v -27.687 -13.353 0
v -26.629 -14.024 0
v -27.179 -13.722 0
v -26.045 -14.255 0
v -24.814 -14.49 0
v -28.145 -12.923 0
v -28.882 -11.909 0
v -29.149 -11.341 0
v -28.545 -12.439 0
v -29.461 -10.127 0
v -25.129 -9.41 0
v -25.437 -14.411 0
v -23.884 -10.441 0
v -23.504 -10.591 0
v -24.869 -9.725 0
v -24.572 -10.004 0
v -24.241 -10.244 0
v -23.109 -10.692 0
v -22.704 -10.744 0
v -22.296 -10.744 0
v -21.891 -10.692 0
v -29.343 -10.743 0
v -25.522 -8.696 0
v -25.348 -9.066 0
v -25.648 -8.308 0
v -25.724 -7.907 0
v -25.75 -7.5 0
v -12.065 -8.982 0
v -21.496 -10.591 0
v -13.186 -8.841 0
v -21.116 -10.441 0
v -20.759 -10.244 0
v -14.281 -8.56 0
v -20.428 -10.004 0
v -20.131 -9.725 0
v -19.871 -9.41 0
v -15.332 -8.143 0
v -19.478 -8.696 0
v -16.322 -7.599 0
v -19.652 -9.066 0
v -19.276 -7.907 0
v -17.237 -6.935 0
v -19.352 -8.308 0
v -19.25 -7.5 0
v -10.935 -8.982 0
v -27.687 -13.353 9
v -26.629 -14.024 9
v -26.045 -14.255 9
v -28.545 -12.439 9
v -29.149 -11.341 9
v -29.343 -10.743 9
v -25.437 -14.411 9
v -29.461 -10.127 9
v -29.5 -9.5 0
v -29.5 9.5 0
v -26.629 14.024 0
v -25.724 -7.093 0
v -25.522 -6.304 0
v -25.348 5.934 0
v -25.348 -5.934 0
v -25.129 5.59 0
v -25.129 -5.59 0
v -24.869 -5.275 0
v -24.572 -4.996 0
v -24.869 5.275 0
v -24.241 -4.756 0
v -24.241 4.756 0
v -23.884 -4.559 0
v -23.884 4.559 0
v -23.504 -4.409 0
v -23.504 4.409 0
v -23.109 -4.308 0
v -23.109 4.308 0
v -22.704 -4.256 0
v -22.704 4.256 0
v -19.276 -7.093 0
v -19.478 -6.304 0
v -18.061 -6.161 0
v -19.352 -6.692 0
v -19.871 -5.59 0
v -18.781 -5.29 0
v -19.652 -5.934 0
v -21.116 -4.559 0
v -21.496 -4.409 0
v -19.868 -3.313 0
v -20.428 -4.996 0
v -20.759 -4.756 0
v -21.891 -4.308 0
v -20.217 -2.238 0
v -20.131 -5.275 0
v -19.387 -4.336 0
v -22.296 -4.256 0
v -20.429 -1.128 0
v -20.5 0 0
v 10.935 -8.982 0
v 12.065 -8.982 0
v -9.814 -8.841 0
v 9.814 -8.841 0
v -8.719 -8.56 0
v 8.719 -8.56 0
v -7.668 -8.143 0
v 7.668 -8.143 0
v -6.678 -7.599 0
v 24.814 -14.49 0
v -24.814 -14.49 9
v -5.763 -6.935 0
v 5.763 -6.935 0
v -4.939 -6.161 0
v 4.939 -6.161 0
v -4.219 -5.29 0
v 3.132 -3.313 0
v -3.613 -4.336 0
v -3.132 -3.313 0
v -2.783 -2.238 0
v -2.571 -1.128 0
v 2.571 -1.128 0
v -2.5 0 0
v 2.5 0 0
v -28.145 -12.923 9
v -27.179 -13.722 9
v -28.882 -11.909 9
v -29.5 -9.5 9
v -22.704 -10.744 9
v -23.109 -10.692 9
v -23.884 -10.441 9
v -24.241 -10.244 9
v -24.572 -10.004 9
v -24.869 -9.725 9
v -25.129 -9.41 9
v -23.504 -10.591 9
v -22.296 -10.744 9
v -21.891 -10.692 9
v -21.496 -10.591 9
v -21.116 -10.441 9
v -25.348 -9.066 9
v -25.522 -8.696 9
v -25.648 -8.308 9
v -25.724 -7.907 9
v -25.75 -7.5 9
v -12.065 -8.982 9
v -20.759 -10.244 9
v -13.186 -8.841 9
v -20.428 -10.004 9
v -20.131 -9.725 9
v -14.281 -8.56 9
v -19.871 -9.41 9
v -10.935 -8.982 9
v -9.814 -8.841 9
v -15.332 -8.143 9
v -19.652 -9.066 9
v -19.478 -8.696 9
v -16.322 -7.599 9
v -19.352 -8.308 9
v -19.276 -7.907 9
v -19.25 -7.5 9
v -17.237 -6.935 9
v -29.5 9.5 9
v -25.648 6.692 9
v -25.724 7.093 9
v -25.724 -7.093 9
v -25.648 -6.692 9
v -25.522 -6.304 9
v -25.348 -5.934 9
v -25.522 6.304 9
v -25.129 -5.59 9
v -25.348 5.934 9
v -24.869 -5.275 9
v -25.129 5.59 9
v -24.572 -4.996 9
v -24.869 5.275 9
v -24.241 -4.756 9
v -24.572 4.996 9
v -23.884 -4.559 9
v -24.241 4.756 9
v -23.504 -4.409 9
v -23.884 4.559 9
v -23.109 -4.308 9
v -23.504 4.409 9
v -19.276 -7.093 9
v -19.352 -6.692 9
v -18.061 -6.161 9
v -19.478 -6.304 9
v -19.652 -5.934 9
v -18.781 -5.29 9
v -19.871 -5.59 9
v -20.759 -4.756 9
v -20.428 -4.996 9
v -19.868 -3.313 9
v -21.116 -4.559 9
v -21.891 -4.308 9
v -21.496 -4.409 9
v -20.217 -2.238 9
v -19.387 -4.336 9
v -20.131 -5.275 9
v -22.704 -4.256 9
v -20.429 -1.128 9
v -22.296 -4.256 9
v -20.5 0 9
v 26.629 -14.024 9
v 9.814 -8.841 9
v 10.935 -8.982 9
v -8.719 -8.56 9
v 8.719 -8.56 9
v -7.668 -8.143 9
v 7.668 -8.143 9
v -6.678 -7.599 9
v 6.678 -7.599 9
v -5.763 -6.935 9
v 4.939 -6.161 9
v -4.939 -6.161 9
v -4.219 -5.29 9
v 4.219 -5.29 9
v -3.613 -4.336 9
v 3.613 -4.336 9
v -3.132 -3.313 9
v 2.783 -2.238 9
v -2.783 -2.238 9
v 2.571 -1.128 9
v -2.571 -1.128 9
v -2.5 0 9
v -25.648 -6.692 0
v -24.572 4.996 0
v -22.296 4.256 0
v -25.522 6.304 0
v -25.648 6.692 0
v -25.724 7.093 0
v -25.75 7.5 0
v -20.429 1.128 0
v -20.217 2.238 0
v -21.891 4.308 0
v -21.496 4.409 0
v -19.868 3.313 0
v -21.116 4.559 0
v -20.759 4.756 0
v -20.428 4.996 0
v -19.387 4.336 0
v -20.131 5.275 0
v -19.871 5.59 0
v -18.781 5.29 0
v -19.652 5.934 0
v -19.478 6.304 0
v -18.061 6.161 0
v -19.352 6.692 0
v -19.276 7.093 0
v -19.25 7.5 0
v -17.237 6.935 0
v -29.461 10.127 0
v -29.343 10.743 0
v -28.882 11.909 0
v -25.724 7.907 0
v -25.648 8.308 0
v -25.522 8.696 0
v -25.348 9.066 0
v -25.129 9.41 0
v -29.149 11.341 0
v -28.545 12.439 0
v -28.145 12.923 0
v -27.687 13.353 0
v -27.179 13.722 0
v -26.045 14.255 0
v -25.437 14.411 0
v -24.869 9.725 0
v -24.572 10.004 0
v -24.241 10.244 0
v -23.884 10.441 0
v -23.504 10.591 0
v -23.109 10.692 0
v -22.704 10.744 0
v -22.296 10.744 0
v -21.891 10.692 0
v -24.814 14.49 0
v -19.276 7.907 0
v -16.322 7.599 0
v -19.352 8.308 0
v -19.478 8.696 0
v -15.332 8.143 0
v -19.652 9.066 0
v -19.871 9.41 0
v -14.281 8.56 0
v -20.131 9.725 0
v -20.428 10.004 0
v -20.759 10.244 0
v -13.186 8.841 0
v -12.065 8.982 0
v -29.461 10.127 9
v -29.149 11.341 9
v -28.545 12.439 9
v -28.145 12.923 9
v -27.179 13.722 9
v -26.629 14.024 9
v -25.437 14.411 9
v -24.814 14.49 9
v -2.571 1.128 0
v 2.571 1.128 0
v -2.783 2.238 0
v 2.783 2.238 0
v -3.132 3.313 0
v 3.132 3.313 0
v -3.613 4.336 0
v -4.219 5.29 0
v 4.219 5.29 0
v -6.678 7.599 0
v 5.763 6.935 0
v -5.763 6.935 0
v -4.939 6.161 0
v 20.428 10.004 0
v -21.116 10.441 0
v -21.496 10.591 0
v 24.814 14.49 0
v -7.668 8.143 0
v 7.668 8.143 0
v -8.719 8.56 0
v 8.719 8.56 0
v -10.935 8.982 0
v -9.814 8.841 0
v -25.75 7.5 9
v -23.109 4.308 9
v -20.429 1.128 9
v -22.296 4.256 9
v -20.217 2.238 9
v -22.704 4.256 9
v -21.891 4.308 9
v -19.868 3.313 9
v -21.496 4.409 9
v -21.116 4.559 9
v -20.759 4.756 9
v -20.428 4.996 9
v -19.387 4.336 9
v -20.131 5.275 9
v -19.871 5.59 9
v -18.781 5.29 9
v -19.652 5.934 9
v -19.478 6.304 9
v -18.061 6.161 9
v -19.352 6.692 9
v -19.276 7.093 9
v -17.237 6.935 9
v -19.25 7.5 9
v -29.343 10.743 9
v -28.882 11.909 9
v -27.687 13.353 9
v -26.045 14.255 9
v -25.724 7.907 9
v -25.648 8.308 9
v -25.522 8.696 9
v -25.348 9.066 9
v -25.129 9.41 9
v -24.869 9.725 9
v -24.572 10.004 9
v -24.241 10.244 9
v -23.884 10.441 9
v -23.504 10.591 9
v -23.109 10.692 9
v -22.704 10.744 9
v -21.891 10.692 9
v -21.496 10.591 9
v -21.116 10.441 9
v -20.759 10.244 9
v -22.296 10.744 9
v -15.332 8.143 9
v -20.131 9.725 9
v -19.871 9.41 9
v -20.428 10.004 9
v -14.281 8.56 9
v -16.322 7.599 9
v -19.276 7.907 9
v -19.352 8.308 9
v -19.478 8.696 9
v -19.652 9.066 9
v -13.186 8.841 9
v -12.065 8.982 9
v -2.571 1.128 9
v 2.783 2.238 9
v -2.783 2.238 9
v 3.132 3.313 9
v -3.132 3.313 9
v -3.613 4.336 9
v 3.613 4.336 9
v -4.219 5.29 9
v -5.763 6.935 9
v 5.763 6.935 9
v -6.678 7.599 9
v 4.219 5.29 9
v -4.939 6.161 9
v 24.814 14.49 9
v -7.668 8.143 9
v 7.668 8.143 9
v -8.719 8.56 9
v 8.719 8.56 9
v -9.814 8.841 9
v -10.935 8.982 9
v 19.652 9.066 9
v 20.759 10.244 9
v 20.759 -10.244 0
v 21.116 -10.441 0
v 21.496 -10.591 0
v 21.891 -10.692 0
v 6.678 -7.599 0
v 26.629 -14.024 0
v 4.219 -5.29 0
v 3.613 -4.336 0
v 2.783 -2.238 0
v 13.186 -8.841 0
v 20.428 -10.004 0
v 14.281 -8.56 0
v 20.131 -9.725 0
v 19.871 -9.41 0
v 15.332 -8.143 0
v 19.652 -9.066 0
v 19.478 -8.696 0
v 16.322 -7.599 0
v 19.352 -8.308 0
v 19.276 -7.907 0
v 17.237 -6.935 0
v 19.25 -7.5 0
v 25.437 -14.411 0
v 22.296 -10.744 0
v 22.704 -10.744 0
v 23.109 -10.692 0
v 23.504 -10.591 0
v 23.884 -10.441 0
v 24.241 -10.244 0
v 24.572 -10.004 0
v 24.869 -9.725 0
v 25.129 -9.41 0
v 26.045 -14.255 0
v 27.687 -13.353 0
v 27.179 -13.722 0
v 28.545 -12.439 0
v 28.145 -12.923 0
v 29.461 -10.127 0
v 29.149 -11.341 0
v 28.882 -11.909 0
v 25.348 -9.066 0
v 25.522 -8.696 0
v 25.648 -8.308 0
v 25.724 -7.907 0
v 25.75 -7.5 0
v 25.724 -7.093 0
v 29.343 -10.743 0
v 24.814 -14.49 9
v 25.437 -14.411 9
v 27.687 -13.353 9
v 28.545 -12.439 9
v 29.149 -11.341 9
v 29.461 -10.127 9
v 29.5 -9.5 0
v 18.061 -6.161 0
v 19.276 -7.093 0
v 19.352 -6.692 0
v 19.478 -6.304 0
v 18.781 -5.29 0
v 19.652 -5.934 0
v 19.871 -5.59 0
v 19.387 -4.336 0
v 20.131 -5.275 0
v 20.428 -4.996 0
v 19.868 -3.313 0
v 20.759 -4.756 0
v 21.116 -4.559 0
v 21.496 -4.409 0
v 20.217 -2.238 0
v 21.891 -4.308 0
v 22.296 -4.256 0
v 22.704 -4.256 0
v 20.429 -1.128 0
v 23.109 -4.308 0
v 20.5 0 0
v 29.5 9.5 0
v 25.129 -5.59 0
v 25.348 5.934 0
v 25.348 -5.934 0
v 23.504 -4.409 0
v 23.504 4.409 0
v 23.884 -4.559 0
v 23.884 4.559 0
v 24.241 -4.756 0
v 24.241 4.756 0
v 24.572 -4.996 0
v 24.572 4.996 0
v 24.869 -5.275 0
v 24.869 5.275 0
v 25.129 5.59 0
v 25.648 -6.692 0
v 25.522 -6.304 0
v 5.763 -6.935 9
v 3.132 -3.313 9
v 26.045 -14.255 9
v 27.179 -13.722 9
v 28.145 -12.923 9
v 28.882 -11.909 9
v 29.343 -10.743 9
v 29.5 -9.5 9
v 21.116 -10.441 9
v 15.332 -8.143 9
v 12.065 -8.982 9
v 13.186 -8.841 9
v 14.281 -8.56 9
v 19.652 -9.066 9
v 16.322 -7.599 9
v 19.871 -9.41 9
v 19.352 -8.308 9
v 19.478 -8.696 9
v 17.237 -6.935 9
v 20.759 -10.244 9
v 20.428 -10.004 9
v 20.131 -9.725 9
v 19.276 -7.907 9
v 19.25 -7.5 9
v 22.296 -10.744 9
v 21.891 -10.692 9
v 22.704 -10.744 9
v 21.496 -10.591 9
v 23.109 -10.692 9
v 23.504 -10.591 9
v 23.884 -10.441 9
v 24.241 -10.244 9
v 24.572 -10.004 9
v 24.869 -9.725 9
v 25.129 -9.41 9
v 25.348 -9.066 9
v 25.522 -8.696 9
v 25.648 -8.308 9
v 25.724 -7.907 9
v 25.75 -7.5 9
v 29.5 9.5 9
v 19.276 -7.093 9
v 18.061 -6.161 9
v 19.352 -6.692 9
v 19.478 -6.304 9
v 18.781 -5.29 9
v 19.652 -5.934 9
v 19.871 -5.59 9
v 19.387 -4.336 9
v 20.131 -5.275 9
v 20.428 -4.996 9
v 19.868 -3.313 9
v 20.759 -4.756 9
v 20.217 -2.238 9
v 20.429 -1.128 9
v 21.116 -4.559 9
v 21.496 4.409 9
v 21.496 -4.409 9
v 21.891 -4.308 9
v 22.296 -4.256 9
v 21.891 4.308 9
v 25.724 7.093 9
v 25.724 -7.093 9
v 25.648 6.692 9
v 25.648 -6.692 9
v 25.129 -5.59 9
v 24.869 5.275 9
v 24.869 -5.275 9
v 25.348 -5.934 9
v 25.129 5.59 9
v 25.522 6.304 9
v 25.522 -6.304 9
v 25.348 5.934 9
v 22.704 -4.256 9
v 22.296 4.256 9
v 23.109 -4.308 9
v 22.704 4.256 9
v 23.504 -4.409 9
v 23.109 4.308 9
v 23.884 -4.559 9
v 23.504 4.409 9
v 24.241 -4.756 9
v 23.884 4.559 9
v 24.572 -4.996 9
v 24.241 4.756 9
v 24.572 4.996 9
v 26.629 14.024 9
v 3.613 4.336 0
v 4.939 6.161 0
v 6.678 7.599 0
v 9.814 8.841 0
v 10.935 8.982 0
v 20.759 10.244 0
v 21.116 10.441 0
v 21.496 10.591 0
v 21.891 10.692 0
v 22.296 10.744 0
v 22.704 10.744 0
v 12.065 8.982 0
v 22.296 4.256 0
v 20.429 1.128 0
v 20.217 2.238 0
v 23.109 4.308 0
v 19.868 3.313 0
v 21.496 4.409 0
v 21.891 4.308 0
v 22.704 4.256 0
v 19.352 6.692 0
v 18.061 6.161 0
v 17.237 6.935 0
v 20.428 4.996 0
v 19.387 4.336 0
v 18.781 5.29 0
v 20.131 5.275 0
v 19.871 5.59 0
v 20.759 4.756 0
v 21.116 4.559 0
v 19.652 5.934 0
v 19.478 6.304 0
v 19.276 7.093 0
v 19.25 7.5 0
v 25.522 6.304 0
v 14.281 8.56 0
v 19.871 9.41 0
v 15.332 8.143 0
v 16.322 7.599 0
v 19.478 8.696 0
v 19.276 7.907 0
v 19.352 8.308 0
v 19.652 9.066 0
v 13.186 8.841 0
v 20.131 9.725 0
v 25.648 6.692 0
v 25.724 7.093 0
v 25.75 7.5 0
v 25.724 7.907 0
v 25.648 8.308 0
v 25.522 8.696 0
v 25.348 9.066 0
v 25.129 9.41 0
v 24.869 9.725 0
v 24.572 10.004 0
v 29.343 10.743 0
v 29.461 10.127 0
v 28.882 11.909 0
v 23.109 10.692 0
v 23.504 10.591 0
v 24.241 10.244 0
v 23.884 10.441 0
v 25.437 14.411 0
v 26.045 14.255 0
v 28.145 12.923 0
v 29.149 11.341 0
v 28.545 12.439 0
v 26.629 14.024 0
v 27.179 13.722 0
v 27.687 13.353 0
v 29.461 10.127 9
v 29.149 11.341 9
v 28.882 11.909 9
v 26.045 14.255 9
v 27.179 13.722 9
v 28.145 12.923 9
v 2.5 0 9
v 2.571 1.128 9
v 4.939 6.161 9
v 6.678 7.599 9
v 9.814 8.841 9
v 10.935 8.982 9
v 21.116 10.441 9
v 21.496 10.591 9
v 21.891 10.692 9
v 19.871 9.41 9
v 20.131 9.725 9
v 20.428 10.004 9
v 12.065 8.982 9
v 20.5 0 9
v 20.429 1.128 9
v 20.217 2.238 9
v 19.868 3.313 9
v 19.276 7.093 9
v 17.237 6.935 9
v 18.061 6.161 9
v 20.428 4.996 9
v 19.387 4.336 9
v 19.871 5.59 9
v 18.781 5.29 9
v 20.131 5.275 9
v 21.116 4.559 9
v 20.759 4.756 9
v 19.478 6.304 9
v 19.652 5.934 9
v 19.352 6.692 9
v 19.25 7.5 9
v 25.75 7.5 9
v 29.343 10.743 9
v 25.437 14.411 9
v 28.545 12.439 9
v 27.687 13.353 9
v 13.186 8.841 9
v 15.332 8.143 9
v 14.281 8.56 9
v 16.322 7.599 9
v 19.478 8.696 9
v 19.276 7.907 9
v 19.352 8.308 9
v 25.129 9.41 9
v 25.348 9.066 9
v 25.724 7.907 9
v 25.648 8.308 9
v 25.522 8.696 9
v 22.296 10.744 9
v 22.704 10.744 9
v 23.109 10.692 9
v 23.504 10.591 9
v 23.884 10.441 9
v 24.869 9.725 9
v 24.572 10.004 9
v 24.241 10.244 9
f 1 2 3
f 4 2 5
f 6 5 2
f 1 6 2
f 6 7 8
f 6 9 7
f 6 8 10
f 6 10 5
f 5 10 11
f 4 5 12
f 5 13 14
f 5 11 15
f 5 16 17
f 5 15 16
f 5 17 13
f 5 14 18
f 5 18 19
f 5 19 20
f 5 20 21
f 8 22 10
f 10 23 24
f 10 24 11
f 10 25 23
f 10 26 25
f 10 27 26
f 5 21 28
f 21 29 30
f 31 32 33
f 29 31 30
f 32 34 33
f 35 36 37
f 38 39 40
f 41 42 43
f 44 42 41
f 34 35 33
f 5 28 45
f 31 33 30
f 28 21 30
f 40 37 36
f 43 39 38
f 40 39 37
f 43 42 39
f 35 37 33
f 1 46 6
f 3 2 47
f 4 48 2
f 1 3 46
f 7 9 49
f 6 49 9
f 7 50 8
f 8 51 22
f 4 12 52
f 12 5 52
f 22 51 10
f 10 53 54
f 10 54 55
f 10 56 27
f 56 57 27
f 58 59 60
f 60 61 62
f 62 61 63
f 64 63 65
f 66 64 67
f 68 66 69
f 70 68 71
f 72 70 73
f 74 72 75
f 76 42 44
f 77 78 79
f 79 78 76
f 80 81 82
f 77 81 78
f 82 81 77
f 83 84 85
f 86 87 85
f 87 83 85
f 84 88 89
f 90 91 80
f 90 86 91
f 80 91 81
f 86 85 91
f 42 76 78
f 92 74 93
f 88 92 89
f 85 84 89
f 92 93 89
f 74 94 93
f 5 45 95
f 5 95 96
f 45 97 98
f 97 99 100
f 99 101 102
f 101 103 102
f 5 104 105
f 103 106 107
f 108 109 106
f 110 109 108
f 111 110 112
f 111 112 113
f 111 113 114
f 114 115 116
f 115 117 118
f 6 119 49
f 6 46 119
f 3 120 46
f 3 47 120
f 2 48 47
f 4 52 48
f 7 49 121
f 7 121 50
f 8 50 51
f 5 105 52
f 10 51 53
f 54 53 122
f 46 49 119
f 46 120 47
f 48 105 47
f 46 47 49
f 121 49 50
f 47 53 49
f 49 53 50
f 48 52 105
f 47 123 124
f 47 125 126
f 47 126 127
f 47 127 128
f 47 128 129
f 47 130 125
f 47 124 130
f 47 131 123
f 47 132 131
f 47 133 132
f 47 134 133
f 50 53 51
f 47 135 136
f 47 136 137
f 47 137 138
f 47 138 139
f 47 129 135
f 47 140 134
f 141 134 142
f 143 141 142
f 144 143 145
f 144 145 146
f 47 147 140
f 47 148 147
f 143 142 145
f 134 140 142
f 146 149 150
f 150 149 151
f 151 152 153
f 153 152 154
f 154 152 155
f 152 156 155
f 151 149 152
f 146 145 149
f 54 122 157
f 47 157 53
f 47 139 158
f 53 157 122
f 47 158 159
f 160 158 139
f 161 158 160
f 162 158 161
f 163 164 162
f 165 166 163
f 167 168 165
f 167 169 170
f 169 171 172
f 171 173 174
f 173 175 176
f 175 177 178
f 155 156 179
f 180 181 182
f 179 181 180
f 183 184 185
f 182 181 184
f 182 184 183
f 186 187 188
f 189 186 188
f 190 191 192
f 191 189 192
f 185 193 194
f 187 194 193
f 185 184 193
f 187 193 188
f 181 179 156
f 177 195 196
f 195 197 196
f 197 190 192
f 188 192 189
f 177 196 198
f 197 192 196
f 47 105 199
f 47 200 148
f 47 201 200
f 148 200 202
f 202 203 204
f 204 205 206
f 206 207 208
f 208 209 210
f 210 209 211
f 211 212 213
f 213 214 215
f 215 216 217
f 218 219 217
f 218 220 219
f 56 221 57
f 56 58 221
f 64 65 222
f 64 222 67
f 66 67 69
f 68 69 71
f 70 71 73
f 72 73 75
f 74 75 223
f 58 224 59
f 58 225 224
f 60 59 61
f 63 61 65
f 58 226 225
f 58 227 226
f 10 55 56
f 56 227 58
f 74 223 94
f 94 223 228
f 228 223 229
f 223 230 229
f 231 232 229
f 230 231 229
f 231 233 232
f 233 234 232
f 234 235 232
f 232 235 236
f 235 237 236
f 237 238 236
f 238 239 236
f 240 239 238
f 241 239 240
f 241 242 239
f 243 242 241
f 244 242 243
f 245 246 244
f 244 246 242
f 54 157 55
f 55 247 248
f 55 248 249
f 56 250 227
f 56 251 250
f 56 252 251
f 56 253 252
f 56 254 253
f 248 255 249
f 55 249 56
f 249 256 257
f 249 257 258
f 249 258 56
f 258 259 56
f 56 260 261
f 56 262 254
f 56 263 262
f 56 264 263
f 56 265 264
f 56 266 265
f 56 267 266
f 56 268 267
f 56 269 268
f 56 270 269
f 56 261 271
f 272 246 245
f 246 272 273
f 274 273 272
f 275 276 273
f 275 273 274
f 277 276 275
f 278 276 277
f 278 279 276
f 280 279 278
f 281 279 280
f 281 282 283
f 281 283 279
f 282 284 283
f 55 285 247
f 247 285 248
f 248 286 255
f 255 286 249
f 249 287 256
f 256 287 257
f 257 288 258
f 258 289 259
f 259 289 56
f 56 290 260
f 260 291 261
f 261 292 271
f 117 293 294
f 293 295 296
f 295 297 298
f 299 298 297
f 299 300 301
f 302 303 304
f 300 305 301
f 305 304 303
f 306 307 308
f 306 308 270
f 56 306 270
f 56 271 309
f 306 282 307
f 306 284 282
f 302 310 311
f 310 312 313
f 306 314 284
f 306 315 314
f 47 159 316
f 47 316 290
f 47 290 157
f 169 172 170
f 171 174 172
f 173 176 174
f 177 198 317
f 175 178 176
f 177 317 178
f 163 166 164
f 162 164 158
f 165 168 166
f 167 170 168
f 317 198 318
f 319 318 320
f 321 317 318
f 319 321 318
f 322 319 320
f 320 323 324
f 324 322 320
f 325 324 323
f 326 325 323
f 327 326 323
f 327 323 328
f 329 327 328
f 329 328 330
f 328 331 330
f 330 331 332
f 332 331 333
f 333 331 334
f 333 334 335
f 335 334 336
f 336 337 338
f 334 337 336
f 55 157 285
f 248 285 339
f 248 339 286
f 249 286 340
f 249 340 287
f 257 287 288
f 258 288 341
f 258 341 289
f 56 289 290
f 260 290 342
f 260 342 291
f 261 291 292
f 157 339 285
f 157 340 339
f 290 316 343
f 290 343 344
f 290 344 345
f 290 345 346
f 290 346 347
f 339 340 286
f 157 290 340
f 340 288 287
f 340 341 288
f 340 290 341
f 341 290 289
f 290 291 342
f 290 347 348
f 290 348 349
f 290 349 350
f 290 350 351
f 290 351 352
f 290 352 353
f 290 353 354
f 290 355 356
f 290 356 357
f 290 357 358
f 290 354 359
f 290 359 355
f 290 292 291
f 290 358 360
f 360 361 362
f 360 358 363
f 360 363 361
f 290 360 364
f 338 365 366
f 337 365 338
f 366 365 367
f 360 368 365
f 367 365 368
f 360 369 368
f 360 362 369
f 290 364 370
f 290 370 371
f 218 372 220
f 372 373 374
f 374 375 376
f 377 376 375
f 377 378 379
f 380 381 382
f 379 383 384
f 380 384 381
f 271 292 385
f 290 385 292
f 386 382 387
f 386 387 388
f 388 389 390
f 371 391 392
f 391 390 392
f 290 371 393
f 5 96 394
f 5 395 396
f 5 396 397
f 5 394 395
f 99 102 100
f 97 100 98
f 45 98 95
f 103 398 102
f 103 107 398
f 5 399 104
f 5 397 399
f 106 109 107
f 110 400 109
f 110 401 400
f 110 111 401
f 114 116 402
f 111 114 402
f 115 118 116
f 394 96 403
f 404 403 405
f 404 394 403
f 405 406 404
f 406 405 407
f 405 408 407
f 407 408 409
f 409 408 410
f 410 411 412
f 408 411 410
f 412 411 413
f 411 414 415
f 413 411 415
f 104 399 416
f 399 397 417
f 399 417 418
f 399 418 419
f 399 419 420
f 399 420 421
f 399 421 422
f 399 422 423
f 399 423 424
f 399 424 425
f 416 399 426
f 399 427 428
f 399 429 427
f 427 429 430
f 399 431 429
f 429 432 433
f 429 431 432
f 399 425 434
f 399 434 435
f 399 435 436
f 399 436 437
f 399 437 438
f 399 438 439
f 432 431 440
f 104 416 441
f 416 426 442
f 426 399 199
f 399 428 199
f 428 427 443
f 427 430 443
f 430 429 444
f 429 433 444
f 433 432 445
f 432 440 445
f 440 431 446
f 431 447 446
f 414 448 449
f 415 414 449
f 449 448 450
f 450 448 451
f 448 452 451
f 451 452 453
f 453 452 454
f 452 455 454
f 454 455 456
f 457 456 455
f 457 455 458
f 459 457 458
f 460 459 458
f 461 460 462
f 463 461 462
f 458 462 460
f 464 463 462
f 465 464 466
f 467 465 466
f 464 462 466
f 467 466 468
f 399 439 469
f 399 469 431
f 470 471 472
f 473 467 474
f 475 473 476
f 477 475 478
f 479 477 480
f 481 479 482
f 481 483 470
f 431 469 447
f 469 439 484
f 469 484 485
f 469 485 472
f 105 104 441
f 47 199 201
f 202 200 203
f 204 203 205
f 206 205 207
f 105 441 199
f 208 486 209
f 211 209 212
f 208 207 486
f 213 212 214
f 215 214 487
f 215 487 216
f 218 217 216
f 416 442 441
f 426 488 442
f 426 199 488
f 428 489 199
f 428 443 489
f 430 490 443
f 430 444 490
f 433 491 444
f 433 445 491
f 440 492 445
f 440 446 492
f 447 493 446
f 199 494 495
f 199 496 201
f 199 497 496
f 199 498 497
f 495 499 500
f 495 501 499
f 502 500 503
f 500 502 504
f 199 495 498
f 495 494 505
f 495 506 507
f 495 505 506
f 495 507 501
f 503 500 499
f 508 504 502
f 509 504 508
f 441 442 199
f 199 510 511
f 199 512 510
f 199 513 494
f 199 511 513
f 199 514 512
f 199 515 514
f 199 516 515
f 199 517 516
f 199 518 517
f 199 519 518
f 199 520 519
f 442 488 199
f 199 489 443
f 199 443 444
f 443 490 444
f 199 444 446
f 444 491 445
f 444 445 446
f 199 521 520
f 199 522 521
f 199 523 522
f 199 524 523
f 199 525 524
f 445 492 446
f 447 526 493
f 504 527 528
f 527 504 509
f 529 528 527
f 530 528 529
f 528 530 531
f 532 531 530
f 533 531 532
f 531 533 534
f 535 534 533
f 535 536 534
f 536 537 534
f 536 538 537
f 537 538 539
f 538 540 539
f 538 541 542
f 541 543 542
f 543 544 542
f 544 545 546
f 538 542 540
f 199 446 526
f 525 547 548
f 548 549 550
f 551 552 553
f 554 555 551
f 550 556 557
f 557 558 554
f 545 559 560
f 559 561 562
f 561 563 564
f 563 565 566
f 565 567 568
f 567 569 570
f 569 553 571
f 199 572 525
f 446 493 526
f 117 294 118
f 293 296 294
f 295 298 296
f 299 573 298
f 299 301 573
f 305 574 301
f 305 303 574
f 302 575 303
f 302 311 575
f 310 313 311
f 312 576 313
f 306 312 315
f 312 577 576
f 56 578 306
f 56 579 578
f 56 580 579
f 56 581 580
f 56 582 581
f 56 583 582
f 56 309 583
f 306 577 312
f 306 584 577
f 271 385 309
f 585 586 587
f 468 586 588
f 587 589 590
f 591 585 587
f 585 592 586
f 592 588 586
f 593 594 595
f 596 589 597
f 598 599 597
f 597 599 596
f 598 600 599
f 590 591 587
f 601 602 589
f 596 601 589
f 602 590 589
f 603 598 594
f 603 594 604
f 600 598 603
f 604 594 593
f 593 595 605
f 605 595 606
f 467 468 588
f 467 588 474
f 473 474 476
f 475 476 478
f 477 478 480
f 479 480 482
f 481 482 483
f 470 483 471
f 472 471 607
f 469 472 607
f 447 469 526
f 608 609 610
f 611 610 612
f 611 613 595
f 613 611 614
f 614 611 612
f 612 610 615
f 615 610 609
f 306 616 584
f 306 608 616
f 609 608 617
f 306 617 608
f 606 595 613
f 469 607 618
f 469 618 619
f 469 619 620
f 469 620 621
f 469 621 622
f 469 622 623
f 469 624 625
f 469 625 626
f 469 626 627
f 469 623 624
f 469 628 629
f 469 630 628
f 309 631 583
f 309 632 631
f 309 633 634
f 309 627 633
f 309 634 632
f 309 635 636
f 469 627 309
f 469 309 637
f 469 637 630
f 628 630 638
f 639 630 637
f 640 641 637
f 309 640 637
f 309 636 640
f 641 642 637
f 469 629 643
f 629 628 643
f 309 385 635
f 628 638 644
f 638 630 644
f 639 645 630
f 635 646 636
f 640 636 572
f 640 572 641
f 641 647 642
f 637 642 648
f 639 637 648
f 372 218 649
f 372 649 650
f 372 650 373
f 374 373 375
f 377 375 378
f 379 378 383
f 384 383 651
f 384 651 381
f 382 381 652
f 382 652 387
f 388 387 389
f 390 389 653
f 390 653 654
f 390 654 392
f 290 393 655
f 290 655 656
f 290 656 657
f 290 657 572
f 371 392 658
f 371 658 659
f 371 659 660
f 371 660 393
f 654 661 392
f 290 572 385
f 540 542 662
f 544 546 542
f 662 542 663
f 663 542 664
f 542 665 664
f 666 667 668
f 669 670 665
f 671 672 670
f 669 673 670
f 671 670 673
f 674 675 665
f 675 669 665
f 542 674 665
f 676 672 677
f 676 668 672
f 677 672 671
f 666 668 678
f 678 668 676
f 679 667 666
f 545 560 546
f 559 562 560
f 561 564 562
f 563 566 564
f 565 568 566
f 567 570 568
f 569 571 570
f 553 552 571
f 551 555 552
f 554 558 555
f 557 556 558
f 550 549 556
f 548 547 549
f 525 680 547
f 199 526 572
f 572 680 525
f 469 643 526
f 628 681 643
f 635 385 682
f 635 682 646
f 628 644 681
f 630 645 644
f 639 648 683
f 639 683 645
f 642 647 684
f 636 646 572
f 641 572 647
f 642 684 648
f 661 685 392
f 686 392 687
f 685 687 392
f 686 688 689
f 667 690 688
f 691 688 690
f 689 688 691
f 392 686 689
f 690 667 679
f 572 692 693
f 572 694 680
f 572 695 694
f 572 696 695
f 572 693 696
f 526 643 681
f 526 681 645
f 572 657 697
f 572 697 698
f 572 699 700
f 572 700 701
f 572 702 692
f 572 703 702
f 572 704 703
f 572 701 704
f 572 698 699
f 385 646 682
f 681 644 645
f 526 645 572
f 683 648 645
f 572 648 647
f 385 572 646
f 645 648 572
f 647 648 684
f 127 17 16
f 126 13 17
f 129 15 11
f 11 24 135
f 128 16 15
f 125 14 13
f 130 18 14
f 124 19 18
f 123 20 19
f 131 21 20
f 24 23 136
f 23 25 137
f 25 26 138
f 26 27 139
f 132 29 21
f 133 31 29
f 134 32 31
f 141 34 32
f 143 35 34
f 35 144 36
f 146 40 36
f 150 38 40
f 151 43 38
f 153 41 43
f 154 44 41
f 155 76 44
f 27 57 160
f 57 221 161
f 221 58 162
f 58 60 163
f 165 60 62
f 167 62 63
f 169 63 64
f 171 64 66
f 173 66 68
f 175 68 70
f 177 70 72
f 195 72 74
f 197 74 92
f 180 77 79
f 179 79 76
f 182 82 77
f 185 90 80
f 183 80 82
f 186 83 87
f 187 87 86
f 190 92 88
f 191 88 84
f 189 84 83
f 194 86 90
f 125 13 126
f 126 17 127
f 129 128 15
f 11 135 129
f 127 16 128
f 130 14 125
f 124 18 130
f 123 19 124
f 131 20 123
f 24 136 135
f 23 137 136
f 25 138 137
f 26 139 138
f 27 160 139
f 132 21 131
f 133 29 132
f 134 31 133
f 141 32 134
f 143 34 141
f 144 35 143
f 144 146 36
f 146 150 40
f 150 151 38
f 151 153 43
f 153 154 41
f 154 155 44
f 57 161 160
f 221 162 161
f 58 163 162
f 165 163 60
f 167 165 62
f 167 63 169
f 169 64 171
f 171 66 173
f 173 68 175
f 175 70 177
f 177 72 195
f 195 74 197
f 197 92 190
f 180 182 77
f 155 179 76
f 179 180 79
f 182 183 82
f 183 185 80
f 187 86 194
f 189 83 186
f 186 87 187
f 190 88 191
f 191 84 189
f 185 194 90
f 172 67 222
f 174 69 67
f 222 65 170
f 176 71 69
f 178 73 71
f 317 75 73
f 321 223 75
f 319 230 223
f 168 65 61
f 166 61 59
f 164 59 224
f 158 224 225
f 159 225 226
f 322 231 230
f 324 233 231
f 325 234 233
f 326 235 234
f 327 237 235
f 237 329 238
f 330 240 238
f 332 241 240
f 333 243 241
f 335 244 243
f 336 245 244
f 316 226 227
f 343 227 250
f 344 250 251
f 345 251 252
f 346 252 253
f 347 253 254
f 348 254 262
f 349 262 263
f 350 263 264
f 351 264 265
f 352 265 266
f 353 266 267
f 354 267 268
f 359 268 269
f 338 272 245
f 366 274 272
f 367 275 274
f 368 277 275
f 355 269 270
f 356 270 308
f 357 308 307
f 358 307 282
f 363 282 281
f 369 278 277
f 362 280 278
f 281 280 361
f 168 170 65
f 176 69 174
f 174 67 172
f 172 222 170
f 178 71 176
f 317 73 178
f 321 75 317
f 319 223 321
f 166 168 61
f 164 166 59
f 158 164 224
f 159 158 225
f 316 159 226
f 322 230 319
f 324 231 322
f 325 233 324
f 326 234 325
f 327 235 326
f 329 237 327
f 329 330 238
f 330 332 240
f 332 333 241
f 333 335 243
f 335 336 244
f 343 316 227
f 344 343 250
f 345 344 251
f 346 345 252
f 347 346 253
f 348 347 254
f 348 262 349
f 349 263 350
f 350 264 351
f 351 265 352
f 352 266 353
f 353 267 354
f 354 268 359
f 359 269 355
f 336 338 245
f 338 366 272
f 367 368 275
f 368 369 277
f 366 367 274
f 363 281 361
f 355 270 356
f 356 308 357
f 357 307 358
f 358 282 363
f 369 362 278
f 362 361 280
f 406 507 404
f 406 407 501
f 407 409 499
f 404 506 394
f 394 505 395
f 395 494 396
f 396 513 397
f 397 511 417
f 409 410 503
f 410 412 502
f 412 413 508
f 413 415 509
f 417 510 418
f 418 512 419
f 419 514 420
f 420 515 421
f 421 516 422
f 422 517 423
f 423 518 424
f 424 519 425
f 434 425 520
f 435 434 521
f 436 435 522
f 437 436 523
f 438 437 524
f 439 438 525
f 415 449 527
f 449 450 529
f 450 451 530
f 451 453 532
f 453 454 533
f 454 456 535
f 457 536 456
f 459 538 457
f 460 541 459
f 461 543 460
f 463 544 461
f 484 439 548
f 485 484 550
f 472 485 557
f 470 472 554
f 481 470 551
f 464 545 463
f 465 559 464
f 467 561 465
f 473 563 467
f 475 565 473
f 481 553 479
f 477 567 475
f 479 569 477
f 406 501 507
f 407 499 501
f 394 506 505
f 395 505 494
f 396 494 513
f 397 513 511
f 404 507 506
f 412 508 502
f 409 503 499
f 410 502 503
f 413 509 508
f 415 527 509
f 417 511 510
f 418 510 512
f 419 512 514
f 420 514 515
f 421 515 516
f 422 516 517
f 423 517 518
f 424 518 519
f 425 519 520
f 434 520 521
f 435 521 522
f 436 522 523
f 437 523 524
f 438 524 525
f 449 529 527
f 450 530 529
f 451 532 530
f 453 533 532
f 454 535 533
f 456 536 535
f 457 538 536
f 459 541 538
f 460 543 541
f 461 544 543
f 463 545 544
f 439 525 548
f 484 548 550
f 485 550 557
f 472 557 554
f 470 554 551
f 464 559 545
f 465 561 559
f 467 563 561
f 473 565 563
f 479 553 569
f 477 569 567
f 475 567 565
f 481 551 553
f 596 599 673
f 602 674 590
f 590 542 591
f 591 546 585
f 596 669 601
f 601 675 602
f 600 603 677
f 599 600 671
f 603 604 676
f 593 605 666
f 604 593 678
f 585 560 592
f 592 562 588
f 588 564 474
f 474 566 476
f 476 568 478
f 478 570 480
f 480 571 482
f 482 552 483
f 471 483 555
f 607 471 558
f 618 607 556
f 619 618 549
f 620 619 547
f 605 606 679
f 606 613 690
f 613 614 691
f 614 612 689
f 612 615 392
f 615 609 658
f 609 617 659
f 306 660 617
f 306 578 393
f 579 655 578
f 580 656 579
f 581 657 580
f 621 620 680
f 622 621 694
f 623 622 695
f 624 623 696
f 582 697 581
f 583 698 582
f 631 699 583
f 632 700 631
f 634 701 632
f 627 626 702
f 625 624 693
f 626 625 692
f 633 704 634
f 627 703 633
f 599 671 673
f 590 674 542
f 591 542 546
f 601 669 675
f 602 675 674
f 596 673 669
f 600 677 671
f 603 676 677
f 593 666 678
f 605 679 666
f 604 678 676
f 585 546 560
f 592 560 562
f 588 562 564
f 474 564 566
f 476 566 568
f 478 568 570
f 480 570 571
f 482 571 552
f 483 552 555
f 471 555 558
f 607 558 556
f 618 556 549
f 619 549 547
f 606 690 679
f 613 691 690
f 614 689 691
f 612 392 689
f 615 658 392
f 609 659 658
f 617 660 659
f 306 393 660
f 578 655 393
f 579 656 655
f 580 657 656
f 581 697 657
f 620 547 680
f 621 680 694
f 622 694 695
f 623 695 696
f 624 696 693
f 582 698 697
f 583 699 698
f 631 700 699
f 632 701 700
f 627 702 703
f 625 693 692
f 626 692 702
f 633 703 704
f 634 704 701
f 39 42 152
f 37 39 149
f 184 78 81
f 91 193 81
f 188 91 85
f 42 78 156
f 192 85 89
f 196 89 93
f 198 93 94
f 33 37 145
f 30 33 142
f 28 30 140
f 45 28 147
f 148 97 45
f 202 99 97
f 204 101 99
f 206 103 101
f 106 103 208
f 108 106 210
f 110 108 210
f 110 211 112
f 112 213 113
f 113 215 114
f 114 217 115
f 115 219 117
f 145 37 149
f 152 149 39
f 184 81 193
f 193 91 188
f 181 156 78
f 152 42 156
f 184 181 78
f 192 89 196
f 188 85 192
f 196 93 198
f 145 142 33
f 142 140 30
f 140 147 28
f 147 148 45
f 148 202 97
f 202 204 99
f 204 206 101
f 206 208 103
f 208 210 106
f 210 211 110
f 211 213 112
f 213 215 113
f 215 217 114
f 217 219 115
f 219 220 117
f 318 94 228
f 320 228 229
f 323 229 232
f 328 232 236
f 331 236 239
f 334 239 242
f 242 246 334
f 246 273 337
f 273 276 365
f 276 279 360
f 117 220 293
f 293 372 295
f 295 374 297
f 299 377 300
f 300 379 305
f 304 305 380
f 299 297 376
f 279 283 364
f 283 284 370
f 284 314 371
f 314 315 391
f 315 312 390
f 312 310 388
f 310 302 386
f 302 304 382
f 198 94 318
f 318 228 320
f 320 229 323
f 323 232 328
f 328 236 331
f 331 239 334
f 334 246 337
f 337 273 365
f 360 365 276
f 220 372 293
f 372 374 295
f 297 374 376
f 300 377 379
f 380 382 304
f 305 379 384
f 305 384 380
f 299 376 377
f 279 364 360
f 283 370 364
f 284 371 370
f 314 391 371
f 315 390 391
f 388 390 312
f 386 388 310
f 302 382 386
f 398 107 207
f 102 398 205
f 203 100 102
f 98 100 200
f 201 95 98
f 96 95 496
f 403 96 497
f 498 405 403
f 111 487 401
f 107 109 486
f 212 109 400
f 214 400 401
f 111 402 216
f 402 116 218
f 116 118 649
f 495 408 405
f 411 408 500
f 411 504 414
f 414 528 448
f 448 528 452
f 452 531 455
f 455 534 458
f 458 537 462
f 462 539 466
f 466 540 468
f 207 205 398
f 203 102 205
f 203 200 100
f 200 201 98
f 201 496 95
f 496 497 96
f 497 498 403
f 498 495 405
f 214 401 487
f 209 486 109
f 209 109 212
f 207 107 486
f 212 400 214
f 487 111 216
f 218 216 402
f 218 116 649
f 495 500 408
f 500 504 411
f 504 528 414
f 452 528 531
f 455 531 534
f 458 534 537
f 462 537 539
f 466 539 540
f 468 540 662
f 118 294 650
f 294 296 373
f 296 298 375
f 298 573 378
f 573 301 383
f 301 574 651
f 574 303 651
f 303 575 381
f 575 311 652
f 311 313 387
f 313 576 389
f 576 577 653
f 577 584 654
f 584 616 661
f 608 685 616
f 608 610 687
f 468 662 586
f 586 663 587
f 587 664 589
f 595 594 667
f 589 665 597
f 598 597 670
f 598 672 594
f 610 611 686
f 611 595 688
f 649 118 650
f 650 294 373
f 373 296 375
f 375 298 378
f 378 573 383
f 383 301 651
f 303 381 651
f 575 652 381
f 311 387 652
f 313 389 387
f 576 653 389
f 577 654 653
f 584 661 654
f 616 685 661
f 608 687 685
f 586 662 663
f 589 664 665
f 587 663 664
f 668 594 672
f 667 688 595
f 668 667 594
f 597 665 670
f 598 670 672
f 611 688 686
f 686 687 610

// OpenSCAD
$fn = 50;

difference() {
	union() {
		hull() {
			translate(v = [-24.5, 9.5, 0]) {
				cylinder(h = 9, r = 5);
			}
			translate(v = [24.5, 9.5, 0]) {
				cylinder(h = 9, r = 5);
			}
			translate(v = [-24.5, -9.5, 0]) {
				cylinder(h = 9, r = 5);
			}
			translate(v = [24.5, -9.5, 0]) {
				cylinder(h = 9, r = 5);
			}
		}
	}
	union() {
		translate(v = [-22.5, -7.5, -100.0]) {
			cylinder(h = 200, r = 3.25);
		}
		translate(v = [-22.5, 7.5, -100.0]) {
			cylinder(h = 200, r = 3.25);
		}
		translate(v = [22.5, -7.5, -100.0]) {
			cylinder(h = 200, r = 3.25);
		}
		translate(v = [22.5, 7.5, -100.0]) {
			cylinder(h = 200, r = 3.25);
		}
		translate(v = [-22.5, -7.5, -100.0]) {
			cylinder(h = 200, r = 1.8);
		}
		translate(v = [-22.5, 7.5, -100.0]) {
			cylinder(h = 200, r = 1.8);
		}
		translate(v = [22.5, -7.5, -100.0]) {
			cylinder(h = 200, r = 1.8);
		}
		translate(v = [22.5, 7.5, -100.0]) {
			cylinder(h = 200, r = 1.8);
		}
		translate(v = [-11.5, 0, 0.0]) {
			cylinder(h = 9, r = 9.0);
		}
		translate(v = [11.5, 0, 0.0]) {
			cylinder(h = 9, r = 9.0);
		}
	}
}
